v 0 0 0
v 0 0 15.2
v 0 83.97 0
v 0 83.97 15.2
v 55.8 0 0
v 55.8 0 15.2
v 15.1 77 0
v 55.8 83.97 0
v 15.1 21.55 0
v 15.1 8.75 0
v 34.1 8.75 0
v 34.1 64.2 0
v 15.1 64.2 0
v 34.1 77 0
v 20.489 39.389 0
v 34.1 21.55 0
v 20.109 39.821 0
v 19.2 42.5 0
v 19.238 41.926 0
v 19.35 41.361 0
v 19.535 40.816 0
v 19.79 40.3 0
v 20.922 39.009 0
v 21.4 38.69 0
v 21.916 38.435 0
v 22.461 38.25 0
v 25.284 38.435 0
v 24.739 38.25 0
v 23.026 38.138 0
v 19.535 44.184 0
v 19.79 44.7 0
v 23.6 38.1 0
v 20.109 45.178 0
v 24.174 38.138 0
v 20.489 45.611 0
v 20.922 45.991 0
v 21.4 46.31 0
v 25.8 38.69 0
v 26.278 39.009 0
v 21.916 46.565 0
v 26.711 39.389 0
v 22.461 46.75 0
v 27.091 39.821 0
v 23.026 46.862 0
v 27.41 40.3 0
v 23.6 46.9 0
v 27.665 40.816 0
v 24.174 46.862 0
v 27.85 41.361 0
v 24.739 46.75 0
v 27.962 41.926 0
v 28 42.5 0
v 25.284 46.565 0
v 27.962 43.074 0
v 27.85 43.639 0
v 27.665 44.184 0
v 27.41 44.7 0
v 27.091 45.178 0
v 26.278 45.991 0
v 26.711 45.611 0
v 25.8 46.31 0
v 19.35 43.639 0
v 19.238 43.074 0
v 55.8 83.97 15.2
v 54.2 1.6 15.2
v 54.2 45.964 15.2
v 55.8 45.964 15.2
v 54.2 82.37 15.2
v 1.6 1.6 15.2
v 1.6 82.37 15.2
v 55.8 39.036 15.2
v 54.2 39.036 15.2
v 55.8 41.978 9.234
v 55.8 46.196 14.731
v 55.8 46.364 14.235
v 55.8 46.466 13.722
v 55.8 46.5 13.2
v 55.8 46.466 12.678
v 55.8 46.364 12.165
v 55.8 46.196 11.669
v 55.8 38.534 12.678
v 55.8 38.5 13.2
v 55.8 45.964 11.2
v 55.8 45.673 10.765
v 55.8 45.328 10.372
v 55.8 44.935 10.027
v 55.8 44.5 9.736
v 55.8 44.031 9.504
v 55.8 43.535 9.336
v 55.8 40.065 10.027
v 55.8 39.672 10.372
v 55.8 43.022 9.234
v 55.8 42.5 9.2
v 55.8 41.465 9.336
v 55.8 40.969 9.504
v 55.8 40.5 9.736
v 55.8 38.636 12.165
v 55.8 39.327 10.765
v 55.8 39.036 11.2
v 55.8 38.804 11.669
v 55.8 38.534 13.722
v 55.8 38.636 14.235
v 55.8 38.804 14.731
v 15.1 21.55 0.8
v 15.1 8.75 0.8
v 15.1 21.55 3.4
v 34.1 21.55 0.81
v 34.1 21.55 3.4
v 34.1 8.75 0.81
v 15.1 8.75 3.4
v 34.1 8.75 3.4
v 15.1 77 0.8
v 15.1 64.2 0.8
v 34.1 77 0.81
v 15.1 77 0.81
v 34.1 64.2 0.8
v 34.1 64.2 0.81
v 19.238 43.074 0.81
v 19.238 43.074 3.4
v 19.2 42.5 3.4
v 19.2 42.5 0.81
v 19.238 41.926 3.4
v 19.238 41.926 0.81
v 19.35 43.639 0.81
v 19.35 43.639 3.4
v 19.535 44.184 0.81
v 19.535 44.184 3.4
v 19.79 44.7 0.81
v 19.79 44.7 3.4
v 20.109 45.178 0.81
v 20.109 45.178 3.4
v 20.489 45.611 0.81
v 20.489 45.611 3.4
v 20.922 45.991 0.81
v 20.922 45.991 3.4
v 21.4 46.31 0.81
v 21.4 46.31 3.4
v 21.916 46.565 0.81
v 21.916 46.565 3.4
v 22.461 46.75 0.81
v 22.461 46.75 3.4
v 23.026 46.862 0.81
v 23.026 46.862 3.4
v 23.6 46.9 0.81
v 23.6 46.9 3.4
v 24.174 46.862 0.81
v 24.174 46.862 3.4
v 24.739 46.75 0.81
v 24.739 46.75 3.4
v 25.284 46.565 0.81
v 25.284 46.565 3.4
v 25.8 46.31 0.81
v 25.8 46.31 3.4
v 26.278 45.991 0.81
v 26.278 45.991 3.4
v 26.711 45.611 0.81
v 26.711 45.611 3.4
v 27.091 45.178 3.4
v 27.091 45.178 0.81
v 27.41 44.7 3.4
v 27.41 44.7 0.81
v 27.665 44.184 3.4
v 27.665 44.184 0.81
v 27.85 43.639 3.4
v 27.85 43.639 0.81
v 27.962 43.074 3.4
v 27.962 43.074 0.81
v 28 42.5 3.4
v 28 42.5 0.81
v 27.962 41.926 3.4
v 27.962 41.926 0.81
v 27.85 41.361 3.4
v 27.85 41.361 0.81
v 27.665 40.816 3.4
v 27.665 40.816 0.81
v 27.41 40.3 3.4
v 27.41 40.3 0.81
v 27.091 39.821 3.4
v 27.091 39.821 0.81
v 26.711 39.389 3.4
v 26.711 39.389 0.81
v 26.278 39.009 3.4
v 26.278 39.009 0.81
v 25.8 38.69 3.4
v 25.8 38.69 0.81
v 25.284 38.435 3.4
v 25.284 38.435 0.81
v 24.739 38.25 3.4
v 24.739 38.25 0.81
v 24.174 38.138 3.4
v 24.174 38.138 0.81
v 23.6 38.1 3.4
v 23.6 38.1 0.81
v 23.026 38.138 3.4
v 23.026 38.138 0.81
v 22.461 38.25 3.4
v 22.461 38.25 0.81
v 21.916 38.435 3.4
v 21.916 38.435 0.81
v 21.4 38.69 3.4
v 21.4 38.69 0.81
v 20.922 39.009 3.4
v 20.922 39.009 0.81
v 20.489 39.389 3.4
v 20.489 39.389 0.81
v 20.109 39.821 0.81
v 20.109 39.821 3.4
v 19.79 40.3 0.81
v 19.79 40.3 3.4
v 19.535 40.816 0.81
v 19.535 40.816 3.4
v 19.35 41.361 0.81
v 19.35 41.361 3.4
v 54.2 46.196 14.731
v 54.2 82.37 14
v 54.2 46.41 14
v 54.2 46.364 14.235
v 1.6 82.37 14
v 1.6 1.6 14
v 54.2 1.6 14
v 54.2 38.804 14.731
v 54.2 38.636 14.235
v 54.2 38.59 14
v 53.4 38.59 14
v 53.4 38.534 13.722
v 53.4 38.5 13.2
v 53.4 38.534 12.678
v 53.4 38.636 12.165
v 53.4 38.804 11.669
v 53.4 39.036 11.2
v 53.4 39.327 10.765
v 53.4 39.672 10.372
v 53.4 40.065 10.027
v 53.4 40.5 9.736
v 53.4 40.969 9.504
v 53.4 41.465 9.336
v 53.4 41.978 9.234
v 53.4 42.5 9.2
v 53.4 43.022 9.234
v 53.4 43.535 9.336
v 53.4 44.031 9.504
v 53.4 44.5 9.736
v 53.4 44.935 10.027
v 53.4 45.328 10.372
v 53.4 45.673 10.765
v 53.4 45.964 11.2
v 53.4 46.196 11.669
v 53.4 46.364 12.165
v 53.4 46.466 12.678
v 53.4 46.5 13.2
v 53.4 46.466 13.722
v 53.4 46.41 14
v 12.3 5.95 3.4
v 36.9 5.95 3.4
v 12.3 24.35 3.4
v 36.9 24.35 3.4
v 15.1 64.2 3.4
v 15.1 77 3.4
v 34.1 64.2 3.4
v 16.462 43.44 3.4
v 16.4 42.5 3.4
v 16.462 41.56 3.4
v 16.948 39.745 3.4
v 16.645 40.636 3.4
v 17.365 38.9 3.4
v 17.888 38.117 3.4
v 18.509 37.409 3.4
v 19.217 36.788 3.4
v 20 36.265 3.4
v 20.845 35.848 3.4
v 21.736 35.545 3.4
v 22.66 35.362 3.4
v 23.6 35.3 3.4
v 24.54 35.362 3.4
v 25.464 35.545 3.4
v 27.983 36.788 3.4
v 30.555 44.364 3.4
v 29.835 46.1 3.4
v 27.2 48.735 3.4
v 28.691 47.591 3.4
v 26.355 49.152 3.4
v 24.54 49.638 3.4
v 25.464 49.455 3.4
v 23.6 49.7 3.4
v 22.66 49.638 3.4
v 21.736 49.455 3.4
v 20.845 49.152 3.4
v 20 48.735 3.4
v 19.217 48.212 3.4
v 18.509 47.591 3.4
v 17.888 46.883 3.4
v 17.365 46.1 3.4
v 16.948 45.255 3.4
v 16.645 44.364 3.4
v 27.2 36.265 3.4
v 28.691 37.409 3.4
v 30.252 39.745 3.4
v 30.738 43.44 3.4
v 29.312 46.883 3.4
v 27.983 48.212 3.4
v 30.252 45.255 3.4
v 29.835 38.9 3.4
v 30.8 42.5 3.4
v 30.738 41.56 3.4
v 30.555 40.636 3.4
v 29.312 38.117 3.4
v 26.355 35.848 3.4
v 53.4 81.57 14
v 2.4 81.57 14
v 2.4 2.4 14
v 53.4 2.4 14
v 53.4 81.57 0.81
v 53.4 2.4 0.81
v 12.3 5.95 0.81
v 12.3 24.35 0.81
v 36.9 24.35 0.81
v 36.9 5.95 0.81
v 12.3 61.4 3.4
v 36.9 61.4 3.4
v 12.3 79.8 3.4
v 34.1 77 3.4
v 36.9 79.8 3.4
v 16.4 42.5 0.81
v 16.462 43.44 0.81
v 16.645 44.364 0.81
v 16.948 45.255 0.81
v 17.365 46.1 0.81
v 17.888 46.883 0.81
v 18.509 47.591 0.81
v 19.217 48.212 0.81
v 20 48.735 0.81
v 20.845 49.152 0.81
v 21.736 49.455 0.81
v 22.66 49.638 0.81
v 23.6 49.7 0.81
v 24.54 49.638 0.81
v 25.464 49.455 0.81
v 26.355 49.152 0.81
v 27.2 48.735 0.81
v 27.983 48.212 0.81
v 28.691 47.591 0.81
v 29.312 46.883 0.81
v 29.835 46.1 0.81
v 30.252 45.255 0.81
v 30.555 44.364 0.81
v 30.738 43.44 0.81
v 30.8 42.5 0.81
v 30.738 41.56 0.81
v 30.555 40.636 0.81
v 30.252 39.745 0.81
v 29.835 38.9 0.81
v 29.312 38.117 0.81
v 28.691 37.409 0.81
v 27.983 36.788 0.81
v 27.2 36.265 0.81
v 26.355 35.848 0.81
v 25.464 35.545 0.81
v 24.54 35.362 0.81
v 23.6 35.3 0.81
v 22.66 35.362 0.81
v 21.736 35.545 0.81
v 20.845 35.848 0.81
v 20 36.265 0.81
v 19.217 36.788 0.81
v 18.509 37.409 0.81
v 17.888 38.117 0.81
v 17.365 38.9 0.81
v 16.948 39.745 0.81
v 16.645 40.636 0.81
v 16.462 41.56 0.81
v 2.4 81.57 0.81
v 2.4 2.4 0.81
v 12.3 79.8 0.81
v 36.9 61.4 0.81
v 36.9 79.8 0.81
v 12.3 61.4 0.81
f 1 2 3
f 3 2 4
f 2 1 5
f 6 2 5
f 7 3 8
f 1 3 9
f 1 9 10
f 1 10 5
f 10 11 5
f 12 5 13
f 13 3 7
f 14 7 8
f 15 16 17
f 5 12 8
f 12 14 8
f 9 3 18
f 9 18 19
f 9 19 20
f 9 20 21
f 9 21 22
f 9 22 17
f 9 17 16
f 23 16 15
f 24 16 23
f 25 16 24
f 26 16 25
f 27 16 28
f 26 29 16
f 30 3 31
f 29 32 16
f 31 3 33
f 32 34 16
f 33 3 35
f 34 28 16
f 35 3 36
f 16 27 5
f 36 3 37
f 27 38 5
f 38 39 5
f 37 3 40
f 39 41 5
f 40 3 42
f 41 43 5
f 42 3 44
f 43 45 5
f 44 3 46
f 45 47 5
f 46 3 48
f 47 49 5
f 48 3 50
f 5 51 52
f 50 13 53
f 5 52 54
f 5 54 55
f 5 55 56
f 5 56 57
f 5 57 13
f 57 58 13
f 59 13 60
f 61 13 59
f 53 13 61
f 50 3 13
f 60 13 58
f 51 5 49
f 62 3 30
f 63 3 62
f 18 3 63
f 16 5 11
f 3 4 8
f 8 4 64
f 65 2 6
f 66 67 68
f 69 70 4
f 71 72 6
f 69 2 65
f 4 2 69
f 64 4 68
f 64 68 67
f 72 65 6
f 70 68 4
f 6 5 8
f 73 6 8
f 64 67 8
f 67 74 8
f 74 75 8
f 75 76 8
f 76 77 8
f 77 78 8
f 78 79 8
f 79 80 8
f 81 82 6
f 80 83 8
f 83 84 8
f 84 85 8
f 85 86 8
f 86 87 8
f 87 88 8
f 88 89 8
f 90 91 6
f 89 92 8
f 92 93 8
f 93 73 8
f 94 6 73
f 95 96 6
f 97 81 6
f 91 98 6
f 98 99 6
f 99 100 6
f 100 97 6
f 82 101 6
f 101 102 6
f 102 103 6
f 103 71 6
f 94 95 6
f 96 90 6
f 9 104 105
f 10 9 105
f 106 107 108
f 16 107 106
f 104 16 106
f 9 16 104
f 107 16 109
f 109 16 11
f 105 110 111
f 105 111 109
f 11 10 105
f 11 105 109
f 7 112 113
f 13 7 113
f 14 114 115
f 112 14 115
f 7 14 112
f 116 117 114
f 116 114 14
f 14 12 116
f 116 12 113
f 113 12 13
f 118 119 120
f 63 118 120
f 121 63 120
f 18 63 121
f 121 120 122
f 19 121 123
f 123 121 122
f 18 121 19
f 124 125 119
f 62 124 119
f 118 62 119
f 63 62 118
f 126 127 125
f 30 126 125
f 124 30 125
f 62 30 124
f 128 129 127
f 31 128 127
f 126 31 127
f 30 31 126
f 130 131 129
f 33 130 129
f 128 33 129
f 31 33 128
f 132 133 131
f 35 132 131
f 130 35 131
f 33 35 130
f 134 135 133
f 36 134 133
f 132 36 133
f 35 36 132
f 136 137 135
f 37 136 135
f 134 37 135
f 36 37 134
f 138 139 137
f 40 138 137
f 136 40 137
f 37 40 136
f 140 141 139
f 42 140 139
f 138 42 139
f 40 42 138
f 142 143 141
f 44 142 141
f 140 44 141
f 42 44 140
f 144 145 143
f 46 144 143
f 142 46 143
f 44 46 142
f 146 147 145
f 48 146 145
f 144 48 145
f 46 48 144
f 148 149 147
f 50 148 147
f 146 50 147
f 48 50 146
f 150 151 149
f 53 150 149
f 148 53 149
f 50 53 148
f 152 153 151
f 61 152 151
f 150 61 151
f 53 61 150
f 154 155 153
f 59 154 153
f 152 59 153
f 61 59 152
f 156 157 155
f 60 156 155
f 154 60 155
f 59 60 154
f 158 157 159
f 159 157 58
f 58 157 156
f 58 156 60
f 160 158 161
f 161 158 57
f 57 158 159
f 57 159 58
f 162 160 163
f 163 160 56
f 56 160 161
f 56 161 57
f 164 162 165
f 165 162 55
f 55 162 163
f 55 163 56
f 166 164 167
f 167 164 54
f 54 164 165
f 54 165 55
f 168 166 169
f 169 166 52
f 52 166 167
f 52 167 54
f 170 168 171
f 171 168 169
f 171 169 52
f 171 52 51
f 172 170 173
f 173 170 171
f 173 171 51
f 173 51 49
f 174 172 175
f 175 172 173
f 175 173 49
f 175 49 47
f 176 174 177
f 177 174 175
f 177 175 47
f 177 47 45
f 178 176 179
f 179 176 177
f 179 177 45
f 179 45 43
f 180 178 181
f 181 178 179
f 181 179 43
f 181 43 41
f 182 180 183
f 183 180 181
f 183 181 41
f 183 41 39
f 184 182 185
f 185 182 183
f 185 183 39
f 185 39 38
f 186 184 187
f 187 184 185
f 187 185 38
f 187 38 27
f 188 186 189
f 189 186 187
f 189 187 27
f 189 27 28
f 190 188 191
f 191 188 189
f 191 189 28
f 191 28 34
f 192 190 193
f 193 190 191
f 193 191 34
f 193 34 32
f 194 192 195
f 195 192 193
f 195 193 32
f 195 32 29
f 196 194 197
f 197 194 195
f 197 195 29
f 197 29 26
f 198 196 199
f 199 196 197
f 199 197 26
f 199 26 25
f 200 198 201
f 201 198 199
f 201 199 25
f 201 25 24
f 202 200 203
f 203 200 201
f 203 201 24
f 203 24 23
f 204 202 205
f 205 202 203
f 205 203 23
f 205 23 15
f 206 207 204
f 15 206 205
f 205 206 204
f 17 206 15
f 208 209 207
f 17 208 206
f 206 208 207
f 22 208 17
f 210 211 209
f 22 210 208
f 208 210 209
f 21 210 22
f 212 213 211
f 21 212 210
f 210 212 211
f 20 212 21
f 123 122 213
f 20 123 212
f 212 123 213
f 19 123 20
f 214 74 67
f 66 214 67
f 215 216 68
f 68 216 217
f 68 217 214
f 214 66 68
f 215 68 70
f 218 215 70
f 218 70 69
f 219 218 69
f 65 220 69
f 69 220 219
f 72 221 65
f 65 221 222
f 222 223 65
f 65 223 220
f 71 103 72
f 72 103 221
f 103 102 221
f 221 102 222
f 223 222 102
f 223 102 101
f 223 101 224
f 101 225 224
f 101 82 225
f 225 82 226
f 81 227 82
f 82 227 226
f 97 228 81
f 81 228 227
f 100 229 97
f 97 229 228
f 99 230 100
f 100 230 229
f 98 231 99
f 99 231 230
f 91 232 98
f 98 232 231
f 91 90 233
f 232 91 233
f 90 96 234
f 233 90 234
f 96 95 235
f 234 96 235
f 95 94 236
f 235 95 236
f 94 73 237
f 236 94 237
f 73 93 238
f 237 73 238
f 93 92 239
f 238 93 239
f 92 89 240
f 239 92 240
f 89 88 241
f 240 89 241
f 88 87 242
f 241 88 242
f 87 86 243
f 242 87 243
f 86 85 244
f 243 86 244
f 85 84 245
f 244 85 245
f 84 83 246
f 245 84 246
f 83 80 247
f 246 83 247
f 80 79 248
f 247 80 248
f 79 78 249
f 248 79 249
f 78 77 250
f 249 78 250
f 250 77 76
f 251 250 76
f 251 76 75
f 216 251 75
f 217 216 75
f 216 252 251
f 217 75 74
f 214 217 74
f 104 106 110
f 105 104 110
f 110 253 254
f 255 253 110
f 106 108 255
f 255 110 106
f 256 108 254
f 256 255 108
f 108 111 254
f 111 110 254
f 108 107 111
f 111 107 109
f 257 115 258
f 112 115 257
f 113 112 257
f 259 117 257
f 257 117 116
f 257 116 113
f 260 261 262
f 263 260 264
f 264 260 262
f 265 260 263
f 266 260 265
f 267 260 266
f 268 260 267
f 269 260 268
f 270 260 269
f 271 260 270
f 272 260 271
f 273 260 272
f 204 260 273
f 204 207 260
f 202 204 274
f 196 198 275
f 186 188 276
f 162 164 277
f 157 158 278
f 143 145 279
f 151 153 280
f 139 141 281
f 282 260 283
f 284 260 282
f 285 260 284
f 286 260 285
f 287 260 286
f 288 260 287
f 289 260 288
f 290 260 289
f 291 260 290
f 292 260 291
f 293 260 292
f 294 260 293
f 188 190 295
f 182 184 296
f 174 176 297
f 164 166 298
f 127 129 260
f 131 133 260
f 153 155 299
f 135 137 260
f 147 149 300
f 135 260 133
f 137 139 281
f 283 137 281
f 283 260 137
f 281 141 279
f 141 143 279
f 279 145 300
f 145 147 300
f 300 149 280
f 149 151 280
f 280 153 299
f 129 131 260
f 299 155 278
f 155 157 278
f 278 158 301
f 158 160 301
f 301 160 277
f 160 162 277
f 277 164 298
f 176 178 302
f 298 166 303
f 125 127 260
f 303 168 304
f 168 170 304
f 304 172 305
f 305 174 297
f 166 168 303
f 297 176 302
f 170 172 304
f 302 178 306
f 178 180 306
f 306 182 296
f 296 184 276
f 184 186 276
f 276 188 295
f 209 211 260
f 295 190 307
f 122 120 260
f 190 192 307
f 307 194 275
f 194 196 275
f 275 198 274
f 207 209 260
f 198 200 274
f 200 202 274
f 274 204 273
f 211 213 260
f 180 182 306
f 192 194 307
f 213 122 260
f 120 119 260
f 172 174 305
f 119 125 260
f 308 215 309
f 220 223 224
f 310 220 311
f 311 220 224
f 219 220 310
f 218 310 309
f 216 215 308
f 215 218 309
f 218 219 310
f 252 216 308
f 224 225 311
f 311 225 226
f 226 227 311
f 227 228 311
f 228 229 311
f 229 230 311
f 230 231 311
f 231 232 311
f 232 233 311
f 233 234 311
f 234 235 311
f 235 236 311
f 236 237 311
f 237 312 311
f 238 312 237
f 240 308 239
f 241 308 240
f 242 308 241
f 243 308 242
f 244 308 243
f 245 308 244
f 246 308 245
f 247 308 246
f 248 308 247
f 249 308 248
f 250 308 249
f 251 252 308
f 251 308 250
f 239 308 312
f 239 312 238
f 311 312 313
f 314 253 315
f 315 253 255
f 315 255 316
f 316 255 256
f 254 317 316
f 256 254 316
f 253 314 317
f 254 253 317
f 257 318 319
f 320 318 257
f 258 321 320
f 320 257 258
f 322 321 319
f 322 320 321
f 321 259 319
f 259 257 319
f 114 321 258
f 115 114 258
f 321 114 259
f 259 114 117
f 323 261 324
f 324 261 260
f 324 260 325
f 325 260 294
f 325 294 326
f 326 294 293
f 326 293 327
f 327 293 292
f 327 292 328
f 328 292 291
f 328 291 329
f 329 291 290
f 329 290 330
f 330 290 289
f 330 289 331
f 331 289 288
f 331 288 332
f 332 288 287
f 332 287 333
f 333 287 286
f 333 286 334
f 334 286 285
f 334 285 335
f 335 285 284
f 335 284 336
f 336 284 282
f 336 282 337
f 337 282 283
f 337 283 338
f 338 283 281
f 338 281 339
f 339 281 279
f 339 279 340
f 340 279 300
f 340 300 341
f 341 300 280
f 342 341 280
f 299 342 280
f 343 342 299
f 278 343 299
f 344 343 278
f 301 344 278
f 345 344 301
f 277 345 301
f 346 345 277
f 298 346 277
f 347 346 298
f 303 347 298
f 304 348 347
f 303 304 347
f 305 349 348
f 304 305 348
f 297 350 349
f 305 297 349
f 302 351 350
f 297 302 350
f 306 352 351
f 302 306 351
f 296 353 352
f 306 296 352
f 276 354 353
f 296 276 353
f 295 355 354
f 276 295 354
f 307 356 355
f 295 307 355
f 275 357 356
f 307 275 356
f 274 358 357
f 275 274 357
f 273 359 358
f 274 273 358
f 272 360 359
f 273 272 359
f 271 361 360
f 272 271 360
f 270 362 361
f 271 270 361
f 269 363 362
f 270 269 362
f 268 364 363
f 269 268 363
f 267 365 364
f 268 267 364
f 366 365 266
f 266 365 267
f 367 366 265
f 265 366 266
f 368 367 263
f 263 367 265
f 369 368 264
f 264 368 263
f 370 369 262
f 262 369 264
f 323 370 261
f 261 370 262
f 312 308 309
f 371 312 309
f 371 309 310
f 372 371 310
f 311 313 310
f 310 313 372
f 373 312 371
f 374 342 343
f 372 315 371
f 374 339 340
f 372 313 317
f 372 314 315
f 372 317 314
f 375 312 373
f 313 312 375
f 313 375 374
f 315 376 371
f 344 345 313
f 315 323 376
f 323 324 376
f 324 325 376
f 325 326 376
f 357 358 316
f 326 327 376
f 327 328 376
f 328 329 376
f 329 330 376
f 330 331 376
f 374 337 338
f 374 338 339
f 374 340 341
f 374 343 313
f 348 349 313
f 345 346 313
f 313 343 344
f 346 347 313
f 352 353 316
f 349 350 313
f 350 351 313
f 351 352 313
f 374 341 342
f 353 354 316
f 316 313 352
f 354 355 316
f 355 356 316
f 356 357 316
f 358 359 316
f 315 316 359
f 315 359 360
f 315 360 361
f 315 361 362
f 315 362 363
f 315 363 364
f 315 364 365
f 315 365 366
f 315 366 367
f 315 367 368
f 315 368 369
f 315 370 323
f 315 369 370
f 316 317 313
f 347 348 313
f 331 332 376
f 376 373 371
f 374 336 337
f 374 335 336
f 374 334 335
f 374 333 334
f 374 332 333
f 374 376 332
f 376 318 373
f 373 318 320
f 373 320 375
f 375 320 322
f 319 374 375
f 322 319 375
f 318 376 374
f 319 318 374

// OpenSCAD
fudge = 0.4;
thin = 0.01;

wall_th = 0.8;

box_w = 55.0+fudge*2;
box_h = 83.17+fudge*2;
box_d = 14.4+fudge*2;

knob_r = 4.0+fudge;
knob_x = 20.1+3.5;
knob_y = 39.0+3.5;

spacer_d = 3.4 - wall_th;
spacer_th = 2.8;

knob_spacer_r = knob_r+spacer_th;
button_spacer_th = spacer_th;

button_w = 18.2+fudge*2;
button_h = 12.0+fudge*2;

button1_x = 11.6+3.5;
button1_y = 60.7+3.5;

button2_x = 11.6+3.5;
button2_y = 5.25+3.5;

$fn = 48;

module button(x, y) {
  translate([x, y, -thin])
    cube([button_w, button_h, 10]);
}

module knob(x, y) {
  translate([x, y, -thin])
    cylinder(r=knob_r, h=10);
}

module cord(x, y, z) {
  translate([x, y, z])
    rotate([0, 90, 0])
      cylinder(r=4.0, h=10);
}

union() {
  difference() {
    cube([box_w, box_h, box_d]);

    translate([wall_th*3, wall_th*3, wall_th+thin])
      cube([box_w-wall_th*6, box_h-wall_th*6, box_d-wall_th]);

    translate([wall_th*2, wall_th*2, box_d-wall_th*1.5])
      cube([box_w-wall_th*4, box_h-wall_th*4, box_d-wall_th]);

    button(button1_x, button1_y);

    button(button2_x, button2_y);

    knob(knob_x, knob_y);

    cord(box_w-5, knob_y, box_d-2);
  }

  translate([knob_x, knob_y, wall_th]) {
    difference() {
      cylinder(r=knob_spacer_r, h=spacer_d);
      knob(0, 0);
    }
  }

  translate([button1_x-button_spacer_th, button1_y-button_spacer_th, wall_th]) {
    difference() {
      cube([button_w+button_spacer_th*2, button_h+button_spacer_th*2, spacer_d]);
      button(button_spacer_th, button_spacer_th);
    }
  }

  translate([button2_x-button_spacer_th, button2_y-button_spacer_th, wall_th]) {
    difference() {
      cube([button_w+button_spacer_th*2, button_h+button_spacer_th*2, spacer_d]);
      button(button_spacer_th, button_spacer_th);
    }
  }
}
